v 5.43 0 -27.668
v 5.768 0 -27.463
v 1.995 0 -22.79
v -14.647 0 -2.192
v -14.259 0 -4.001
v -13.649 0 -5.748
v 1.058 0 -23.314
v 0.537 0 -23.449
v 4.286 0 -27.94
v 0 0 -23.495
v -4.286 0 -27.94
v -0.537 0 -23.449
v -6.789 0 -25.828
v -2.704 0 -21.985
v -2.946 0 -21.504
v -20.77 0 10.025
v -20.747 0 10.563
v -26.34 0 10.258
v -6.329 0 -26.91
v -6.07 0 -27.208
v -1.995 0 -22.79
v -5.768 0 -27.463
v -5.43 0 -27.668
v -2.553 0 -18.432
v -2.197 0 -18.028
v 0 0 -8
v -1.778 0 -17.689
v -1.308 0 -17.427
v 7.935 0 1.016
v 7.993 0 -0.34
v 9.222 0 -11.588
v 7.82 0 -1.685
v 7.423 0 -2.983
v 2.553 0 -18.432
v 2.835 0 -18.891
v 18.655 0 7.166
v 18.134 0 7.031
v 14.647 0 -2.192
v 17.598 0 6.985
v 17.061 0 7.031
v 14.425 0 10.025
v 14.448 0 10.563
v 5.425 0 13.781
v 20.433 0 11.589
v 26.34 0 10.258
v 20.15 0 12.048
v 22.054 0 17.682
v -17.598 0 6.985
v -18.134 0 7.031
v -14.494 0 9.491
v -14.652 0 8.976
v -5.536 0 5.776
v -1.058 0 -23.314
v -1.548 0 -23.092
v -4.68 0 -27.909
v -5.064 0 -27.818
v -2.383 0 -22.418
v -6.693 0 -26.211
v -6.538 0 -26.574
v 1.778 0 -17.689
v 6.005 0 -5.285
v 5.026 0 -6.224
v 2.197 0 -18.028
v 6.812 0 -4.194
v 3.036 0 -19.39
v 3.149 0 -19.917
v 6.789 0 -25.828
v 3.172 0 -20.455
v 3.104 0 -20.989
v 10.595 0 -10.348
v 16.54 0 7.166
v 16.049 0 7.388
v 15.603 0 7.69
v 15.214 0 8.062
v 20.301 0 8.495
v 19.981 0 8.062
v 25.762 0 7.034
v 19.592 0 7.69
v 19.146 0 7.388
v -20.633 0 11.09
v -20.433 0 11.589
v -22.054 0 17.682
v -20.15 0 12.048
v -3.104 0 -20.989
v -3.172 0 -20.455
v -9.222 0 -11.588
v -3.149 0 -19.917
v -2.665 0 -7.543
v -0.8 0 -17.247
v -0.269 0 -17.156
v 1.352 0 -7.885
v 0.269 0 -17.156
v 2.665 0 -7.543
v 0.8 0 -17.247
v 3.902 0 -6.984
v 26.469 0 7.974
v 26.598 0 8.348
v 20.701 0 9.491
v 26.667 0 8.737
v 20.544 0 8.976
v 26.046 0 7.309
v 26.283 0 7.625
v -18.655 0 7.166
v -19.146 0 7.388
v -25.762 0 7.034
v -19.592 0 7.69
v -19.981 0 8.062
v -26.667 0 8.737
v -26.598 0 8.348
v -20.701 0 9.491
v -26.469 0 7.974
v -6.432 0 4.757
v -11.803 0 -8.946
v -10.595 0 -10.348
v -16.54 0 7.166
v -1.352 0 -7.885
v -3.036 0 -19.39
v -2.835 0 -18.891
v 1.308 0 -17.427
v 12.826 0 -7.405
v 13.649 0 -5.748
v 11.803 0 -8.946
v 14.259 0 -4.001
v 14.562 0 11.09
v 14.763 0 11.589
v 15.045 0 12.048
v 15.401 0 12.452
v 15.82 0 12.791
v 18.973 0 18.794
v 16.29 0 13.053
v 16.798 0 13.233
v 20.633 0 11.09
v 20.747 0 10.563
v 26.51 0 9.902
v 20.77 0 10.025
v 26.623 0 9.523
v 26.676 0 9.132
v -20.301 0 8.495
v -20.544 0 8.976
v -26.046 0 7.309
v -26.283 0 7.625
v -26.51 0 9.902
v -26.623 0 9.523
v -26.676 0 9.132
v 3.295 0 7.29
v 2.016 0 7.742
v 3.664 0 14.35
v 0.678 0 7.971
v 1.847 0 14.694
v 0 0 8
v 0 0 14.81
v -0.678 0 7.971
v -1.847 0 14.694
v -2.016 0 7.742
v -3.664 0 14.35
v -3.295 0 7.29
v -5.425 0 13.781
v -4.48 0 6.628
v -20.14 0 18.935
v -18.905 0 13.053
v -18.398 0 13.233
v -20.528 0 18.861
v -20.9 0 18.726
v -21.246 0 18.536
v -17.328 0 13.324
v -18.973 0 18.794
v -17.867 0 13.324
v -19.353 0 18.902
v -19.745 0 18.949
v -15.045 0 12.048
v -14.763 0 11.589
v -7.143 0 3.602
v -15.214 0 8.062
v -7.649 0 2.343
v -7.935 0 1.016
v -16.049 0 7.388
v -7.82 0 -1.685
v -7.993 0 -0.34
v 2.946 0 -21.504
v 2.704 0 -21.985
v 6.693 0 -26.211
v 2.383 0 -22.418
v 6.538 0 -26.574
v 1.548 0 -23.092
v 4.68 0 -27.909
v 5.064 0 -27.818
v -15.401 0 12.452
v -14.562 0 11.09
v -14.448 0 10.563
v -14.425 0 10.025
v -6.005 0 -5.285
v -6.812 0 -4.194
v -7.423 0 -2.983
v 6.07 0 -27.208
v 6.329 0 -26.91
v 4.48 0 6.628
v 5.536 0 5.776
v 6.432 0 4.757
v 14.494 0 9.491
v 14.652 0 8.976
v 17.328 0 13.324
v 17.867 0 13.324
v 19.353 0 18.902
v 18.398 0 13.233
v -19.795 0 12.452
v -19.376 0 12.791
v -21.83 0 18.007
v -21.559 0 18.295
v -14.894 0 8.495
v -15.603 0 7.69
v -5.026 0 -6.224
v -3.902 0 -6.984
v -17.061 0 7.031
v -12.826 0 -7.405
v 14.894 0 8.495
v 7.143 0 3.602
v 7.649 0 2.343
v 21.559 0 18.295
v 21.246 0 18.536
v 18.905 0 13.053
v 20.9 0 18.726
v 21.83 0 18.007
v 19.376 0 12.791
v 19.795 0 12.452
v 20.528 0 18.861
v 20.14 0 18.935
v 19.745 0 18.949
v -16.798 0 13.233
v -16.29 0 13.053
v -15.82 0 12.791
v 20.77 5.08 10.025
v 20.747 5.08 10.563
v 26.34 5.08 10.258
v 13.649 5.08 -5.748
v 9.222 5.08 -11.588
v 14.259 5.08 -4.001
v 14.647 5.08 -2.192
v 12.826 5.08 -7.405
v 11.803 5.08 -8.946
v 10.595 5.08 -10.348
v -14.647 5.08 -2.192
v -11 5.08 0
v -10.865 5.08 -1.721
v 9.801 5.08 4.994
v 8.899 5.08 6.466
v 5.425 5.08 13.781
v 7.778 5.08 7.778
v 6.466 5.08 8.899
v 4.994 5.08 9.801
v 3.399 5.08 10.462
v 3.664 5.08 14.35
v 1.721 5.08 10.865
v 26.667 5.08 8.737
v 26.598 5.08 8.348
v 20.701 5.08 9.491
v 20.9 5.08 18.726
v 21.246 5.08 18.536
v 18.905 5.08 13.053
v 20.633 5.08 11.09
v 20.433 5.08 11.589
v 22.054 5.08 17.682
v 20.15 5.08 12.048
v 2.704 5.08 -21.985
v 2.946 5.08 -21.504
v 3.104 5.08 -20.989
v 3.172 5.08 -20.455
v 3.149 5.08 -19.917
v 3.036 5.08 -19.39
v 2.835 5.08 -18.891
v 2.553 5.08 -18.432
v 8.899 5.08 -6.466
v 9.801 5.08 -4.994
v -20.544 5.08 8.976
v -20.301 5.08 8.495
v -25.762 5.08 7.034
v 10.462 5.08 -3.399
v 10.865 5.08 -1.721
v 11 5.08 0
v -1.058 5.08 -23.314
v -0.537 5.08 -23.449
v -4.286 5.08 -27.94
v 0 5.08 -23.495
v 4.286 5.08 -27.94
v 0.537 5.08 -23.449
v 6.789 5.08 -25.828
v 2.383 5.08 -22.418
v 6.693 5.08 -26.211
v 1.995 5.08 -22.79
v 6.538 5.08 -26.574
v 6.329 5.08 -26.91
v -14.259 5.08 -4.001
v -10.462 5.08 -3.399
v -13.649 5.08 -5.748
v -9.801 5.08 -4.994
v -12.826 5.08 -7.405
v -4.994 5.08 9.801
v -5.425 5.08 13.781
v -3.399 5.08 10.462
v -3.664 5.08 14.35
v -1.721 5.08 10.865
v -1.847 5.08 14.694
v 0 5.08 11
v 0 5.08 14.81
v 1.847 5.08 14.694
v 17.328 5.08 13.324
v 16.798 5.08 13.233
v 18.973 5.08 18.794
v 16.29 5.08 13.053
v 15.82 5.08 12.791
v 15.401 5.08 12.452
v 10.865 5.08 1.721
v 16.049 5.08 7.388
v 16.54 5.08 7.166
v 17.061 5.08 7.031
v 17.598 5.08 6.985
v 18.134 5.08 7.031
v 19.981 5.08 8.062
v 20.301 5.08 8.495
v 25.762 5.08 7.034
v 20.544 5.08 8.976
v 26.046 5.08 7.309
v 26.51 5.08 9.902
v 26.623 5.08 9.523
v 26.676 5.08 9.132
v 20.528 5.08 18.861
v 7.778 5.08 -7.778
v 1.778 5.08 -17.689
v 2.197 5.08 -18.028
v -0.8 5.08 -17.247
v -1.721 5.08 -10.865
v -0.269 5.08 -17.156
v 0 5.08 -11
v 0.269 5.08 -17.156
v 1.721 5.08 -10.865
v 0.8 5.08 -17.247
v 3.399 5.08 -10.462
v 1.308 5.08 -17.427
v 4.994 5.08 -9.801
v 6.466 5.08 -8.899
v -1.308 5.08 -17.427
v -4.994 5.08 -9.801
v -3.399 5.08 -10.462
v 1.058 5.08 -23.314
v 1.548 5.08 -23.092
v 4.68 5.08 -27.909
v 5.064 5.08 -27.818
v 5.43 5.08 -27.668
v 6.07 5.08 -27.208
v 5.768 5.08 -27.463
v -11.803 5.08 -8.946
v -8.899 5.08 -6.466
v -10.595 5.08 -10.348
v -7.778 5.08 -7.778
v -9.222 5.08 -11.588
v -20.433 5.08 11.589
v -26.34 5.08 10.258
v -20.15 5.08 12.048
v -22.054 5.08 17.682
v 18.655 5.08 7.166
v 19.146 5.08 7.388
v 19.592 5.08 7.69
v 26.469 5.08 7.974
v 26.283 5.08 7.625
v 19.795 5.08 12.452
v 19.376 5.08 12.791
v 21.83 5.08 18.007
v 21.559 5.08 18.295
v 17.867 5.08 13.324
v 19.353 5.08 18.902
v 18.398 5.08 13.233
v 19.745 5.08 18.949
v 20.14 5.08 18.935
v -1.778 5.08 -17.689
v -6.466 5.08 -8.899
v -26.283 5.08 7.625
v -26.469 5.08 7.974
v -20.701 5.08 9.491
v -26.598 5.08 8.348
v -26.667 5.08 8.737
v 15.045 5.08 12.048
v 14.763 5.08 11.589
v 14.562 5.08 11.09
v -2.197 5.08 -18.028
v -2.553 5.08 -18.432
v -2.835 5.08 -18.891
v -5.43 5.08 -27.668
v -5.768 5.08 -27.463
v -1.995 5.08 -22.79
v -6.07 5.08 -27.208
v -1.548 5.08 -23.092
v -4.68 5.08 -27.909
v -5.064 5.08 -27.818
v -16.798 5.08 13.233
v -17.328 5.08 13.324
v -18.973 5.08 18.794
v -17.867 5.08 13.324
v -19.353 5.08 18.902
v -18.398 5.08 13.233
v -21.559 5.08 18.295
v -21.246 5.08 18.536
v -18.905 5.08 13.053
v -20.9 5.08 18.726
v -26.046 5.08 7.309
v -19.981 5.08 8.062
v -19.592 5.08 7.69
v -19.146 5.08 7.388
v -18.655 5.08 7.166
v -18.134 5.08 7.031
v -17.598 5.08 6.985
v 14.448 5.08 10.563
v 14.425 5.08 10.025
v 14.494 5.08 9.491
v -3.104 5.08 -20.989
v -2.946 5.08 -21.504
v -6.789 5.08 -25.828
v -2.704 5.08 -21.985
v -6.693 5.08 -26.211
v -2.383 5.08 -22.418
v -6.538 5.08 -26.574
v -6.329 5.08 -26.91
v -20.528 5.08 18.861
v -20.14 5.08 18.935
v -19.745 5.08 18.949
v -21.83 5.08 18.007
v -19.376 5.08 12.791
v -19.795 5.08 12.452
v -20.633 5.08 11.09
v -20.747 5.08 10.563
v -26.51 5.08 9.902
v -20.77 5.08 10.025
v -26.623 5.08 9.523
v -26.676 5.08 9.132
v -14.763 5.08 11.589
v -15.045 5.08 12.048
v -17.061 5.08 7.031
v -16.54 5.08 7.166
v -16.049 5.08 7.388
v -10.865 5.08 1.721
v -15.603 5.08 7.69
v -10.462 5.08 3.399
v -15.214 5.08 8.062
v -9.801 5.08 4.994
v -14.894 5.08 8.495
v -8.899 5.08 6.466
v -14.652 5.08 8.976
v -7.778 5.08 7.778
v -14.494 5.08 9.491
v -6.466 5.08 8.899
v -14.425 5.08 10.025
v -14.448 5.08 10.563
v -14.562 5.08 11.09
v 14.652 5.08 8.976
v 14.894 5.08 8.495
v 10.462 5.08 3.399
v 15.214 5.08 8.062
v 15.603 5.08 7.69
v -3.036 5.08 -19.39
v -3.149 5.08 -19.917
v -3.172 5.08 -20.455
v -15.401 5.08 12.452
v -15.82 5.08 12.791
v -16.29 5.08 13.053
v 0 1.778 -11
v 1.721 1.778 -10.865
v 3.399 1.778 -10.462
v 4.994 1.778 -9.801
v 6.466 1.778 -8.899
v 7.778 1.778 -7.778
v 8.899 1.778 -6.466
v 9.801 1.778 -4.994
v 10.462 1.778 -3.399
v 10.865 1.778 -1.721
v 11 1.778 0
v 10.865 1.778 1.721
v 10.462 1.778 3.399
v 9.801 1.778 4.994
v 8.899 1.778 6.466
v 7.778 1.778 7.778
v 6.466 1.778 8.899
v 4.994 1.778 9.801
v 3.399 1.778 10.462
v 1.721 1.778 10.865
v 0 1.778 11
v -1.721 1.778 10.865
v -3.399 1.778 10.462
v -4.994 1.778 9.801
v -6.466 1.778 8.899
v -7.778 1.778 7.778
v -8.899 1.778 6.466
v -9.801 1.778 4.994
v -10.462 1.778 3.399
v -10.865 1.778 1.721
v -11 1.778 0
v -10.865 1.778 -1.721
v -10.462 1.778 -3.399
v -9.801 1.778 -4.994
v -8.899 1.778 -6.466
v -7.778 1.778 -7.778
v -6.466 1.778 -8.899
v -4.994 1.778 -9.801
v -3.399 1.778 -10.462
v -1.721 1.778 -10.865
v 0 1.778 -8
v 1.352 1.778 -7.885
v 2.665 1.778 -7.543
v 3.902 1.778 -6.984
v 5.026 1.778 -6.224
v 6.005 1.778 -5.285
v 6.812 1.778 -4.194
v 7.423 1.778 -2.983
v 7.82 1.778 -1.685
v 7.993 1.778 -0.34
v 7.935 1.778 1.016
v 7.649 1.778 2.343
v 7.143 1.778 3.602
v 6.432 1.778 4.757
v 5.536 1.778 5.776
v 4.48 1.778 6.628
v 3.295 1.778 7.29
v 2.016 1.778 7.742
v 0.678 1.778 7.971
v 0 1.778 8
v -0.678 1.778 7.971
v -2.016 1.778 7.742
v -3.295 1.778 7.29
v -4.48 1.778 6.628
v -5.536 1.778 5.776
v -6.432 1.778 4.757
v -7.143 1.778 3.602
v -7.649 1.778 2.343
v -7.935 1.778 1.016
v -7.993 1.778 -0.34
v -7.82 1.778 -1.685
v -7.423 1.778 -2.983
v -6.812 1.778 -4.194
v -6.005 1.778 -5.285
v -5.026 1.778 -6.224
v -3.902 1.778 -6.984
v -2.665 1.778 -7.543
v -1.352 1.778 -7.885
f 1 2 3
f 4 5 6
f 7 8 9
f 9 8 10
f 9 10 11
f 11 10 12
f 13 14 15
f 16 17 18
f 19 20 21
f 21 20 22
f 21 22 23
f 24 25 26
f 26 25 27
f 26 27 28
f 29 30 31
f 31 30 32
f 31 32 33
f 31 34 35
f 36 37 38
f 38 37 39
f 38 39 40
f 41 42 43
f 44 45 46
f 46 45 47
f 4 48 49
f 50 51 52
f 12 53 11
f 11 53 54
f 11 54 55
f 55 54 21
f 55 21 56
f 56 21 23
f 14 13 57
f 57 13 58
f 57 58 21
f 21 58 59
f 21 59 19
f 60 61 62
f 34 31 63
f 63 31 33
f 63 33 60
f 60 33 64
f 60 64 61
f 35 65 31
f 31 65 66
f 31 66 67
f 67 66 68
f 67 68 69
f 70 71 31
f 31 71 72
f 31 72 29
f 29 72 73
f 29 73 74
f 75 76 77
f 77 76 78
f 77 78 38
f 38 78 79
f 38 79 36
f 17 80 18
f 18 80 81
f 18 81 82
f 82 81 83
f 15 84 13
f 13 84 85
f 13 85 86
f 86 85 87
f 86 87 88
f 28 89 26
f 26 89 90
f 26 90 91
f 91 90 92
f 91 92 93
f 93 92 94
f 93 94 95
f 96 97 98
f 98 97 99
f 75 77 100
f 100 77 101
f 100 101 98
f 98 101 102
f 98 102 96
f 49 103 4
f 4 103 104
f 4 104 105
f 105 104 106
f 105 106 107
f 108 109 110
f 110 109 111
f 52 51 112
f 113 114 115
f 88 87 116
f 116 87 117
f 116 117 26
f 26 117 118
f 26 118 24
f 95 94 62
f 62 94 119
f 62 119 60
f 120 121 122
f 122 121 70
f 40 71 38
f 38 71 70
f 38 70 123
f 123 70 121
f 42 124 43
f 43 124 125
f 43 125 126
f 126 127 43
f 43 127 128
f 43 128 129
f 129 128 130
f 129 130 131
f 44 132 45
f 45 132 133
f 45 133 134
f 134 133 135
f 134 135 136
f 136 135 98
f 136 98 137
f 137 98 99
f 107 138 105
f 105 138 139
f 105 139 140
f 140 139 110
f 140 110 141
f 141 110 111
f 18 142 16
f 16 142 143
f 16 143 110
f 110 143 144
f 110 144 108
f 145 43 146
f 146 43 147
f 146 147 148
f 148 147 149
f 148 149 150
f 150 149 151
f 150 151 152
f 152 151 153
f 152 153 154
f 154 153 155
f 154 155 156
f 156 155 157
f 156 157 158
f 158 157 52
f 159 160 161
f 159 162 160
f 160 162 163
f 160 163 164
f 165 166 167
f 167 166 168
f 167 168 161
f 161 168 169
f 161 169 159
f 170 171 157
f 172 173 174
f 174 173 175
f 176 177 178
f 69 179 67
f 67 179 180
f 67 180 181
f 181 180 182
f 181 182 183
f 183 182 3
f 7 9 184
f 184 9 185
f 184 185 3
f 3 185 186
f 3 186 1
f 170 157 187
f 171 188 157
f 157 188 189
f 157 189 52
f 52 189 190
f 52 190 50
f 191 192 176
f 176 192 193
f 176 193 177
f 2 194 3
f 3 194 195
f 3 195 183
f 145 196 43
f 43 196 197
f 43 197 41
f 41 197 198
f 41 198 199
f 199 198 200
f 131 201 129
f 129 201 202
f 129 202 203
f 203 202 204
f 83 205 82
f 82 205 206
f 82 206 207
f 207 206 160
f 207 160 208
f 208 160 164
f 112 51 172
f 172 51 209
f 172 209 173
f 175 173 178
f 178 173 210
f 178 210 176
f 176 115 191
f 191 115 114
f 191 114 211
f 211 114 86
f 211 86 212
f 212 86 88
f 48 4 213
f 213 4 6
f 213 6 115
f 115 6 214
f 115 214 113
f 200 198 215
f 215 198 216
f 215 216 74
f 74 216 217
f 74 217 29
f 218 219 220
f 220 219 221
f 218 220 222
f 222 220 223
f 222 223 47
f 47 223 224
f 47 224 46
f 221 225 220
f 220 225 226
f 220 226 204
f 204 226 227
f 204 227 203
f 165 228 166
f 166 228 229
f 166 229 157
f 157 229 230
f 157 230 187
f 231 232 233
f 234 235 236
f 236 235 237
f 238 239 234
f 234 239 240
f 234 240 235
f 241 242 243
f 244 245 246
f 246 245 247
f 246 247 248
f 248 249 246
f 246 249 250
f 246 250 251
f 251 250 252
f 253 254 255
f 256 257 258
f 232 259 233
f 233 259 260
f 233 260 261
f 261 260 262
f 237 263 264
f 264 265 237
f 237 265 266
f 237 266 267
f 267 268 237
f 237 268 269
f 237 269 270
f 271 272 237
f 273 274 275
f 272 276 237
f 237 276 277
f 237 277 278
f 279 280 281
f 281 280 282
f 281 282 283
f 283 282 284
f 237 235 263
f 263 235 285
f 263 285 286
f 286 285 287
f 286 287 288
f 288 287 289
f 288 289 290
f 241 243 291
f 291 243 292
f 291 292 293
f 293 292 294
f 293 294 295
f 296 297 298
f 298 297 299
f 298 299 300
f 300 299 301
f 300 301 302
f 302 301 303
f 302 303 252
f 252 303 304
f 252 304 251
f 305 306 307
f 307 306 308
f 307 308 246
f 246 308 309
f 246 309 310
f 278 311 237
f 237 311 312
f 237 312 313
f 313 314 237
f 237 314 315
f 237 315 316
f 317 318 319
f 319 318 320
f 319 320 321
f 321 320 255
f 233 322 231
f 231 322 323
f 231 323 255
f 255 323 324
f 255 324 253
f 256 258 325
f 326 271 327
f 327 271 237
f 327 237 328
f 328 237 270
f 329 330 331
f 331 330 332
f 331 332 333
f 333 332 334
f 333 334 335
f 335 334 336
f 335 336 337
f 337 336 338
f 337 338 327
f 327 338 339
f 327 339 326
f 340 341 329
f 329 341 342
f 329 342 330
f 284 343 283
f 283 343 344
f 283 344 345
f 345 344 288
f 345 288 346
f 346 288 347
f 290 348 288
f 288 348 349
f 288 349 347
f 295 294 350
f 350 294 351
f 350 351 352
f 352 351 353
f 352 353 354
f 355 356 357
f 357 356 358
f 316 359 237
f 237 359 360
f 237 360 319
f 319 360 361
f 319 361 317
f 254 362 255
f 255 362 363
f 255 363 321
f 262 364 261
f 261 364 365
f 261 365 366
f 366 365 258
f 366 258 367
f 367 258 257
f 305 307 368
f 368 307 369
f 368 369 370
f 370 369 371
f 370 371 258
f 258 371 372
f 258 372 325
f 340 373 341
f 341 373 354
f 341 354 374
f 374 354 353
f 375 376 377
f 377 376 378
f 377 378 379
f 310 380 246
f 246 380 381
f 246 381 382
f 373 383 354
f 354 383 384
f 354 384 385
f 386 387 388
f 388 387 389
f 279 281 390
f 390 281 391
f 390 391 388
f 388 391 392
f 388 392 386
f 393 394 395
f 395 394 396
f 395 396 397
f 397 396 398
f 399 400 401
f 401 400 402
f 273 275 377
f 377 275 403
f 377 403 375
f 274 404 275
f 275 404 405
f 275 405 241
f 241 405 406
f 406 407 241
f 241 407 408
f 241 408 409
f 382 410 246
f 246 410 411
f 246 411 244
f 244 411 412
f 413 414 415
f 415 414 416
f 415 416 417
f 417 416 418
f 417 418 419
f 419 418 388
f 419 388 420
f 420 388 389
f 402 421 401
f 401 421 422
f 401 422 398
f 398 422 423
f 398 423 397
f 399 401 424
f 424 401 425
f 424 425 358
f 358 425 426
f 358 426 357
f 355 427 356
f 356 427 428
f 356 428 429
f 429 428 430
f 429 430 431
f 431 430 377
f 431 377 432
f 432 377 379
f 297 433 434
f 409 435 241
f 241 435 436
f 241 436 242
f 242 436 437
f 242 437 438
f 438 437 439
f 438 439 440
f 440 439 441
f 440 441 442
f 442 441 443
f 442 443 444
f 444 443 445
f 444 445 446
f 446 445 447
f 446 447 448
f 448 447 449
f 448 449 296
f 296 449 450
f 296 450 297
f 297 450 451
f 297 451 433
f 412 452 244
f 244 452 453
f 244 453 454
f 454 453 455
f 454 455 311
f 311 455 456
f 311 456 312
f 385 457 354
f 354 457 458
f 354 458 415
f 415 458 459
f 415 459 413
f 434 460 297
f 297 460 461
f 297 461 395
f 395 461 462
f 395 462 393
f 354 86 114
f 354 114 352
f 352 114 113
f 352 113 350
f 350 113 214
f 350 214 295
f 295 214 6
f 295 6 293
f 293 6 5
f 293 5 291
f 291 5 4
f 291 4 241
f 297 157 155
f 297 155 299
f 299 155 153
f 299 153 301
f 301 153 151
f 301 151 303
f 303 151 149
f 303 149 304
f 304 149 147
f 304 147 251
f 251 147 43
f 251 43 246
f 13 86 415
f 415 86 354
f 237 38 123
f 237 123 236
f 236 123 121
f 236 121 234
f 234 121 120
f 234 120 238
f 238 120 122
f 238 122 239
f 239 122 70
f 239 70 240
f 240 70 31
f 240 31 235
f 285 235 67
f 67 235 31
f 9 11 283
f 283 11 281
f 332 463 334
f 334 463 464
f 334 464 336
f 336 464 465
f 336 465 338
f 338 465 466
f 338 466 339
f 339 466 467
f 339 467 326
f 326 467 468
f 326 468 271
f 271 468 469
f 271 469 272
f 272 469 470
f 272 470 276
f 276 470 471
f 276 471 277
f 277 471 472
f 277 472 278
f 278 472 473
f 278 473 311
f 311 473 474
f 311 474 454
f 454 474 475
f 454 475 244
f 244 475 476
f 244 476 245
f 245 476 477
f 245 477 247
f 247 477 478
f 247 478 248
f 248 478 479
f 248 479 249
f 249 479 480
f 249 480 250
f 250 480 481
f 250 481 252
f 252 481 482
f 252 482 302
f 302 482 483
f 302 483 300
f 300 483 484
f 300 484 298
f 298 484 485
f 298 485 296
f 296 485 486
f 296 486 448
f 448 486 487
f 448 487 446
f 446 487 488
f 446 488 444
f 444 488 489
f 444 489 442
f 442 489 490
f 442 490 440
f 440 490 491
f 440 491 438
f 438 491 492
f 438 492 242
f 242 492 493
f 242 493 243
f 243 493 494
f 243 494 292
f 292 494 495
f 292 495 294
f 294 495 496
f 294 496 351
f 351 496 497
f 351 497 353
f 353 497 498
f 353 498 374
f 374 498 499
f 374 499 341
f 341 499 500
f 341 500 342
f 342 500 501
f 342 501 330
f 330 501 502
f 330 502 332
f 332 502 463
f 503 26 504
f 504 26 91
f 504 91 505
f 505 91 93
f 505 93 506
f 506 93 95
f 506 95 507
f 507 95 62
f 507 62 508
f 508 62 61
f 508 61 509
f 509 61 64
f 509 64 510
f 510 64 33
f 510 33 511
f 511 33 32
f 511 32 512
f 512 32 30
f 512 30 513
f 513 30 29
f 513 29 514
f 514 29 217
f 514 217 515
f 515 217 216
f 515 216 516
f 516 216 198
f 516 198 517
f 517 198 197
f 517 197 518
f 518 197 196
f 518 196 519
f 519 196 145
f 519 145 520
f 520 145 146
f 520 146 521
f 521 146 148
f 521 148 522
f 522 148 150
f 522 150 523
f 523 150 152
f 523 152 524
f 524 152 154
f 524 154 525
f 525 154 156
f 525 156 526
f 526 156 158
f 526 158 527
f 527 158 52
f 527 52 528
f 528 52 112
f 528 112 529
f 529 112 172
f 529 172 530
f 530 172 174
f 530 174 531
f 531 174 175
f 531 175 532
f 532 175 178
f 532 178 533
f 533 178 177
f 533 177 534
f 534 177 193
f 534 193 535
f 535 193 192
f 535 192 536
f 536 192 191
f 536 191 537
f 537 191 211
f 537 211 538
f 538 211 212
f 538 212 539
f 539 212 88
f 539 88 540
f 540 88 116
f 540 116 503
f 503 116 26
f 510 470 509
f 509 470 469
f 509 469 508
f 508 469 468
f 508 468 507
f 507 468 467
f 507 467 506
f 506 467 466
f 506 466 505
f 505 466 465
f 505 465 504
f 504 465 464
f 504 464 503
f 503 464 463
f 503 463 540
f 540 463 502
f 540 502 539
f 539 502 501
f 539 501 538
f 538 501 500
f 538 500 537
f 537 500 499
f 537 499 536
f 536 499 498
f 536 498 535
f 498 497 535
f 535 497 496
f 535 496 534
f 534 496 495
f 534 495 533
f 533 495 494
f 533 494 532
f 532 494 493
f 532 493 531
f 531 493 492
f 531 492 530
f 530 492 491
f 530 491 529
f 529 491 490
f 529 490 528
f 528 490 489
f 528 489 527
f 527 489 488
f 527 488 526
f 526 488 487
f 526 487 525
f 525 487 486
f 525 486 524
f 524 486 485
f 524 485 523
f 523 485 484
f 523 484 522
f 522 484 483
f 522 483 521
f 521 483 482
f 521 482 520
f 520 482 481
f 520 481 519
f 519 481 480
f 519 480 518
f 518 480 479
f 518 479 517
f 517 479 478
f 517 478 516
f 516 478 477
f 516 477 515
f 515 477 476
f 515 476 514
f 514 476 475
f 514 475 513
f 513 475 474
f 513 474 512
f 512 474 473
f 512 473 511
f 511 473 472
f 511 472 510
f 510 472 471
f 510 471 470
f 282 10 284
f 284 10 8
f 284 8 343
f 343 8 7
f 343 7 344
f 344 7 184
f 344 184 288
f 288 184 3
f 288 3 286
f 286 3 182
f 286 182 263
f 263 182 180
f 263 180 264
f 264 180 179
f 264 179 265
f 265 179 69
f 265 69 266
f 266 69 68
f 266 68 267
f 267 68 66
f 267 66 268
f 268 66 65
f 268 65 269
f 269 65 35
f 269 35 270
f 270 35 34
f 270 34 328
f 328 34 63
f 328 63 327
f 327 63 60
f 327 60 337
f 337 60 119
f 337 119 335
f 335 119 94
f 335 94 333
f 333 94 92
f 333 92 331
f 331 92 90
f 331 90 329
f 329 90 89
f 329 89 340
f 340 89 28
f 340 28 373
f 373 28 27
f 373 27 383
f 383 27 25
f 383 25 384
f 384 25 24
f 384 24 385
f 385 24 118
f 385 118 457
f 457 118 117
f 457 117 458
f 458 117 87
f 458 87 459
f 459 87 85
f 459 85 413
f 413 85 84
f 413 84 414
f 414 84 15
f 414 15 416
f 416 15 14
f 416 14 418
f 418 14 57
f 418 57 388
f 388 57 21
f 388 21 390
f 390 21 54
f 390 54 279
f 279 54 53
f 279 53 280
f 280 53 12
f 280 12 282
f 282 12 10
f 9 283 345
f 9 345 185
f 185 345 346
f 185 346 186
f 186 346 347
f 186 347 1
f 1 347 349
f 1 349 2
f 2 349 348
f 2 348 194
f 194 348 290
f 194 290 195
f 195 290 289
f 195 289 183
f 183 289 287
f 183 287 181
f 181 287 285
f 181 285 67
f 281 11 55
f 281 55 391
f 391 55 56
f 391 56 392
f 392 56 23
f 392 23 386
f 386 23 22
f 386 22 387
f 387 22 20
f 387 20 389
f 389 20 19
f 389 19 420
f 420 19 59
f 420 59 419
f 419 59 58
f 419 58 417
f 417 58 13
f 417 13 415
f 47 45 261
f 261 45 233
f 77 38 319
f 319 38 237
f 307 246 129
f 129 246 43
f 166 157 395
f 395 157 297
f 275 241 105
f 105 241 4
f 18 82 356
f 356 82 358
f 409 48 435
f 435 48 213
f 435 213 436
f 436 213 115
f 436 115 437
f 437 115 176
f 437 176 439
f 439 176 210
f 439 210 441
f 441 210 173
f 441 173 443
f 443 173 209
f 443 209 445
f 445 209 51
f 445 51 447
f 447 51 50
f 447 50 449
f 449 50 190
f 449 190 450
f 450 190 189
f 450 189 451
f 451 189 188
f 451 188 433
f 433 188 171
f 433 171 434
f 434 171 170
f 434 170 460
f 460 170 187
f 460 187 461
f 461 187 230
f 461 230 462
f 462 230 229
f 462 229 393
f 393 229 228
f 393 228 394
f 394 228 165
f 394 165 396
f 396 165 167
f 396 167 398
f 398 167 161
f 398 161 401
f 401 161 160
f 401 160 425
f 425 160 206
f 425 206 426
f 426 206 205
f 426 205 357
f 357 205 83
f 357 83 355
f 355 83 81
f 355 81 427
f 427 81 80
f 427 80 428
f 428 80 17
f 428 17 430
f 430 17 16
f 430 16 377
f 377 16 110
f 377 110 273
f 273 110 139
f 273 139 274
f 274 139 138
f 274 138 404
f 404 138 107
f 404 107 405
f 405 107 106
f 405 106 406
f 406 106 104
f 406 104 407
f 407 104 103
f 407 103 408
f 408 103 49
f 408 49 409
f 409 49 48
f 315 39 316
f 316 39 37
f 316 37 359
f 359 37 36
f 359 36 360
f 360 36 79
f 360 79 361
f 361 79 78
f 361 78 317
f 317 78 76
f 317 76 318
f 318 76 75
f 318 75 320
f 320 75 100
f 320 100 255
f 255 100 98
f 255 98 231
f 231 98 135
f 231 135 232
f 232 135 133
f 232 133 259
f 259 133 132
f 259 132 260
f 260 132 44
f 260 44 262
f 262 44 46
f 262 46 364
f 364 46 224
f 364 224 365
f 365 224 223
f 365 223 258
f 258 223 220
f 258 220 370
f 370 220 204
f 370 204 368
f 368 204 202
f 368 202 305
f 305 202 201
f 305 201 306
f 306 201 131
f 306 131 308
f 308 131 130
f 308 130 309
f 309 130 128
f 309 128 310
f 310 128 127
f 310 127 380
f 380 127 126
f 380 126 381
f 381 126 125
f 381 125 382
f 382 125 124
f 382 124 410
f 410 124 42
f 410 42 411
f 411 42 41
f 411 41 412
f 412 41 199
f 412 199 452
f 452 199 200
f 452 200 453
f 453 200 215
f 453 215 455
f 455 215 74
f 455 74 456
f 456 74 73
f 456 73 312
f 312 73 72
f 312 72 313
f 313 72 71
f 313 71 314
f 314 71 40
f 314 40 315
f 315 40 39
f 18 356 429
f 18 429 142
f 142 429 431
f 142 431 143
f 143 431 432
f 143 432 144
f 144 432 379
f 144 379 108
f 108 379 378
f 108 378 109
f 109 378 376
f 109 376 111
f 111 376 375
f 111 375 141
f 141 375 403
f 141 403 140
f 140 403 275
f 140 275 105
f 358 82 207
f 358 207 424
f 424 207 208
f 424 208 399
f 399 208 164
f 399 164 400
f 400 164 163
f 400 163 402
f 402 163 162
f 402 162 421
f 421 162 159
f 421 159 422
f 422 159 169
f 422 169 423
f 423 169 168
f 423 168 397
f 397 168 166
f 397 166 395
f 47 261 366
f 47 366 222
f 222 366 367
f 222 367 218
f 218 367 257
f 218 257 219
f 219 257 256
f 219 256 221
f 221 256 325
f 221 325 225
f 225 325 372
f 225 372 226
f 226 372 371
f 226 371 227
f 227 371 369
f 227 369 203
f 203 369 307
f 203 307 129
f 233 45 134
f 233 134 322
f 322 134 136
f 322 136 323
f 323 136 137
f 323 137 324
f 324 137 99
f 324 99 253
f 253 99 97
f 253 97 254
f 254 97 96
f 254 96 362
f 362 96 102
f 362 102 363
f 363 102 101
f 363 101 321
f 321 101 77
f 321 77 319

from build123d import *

# Parameters (mm, degrees)
SKETCH2_R                   = 11
BOSS_EXTRUDE1_DEPTH         = 5.08
SKETCH2_6_R                 = 11
SKETCH2_6_R_2               = 8
BOSS_EXTRUDE2_DEPTH         = 1.778
F_1_4_0_25_DIAMETER_HOLE3_D = 6.35
FILLET3_R                   = 2.54
CIRPATTERN2_COUNT           = 3


with BuildPart() as part:
    # Sketch2 → Boss-Extrude1 (new body)
    with BuildSketch(Plane(origin=(0, 0, 0), x_dir=(1, 0, 0), z_dir=(0, 1, 0))):
        with BuildLine():
            Line((-6.428604647, 27.94), (-9.222115265, 11.588299705))
            ThreePointArc((-9.222115265, 11.588299705), (0, -14.81), (9.222115265, 11.588299705))
            Line((9.222115265, 11.588299705), (6.428604647, 27.94))
            Line((6.428604647, 27.94), (-6.428604647, 27.94))
        make_face()
        Circle(SKETCH2_R, mode=Mode.SUBTRACT)
    extrude(amount=BOSS_EXTRUDE1_DEPTH)

    # Sketch2<6> → Boss-Extrude2 (add)
    with BuildSketch(Plane(origin=(0, 0, 0), x_dir=(1, 0, 0), z_dir=(0, 1, 0))):
        Circle(SKETCH2_6_R)
        Circle(SKETCH2_6_R_2, mode=Mode.SUBTRACT)
    extrude(amount=BOSS_EXTRUDE2_DEPTH)

    # 1/4 (0.25) Diameter Hole3 (through all)
    with Locations(Plane(origin=(0, 0, -20.32), x_dir=(0, 0, -1), z_dir=(0, -1, 0))):
        with Locations((0, 0)):
            Hole(F_1_4_0_25_DIAMETER_HOLE3_D / 2)

    # Fillet3
    fillet3_edges = [part.edges().sort_by_distance(p)[0] for p in [
        (6.428604647, 2.54, -27.94),
        (-6.428604647, 2.54, -27.94),
    ]]
    fillet(fillet3_edges, radius=FILLET3_R)

    # CirPattern2: part ×3 about axis
    cirpattern2_axis = Axis((0, 1.778, 0), (0, -1, 0))


with BuildPart() as part_1:
    add(part.part)
    for i in range(1, CIRPATTERN2_COUNT):
        add(part.part.rotate(cirpattern2_axis, i * 360 / CIRPATTERN2_COUNT))


solid = part_1.part
